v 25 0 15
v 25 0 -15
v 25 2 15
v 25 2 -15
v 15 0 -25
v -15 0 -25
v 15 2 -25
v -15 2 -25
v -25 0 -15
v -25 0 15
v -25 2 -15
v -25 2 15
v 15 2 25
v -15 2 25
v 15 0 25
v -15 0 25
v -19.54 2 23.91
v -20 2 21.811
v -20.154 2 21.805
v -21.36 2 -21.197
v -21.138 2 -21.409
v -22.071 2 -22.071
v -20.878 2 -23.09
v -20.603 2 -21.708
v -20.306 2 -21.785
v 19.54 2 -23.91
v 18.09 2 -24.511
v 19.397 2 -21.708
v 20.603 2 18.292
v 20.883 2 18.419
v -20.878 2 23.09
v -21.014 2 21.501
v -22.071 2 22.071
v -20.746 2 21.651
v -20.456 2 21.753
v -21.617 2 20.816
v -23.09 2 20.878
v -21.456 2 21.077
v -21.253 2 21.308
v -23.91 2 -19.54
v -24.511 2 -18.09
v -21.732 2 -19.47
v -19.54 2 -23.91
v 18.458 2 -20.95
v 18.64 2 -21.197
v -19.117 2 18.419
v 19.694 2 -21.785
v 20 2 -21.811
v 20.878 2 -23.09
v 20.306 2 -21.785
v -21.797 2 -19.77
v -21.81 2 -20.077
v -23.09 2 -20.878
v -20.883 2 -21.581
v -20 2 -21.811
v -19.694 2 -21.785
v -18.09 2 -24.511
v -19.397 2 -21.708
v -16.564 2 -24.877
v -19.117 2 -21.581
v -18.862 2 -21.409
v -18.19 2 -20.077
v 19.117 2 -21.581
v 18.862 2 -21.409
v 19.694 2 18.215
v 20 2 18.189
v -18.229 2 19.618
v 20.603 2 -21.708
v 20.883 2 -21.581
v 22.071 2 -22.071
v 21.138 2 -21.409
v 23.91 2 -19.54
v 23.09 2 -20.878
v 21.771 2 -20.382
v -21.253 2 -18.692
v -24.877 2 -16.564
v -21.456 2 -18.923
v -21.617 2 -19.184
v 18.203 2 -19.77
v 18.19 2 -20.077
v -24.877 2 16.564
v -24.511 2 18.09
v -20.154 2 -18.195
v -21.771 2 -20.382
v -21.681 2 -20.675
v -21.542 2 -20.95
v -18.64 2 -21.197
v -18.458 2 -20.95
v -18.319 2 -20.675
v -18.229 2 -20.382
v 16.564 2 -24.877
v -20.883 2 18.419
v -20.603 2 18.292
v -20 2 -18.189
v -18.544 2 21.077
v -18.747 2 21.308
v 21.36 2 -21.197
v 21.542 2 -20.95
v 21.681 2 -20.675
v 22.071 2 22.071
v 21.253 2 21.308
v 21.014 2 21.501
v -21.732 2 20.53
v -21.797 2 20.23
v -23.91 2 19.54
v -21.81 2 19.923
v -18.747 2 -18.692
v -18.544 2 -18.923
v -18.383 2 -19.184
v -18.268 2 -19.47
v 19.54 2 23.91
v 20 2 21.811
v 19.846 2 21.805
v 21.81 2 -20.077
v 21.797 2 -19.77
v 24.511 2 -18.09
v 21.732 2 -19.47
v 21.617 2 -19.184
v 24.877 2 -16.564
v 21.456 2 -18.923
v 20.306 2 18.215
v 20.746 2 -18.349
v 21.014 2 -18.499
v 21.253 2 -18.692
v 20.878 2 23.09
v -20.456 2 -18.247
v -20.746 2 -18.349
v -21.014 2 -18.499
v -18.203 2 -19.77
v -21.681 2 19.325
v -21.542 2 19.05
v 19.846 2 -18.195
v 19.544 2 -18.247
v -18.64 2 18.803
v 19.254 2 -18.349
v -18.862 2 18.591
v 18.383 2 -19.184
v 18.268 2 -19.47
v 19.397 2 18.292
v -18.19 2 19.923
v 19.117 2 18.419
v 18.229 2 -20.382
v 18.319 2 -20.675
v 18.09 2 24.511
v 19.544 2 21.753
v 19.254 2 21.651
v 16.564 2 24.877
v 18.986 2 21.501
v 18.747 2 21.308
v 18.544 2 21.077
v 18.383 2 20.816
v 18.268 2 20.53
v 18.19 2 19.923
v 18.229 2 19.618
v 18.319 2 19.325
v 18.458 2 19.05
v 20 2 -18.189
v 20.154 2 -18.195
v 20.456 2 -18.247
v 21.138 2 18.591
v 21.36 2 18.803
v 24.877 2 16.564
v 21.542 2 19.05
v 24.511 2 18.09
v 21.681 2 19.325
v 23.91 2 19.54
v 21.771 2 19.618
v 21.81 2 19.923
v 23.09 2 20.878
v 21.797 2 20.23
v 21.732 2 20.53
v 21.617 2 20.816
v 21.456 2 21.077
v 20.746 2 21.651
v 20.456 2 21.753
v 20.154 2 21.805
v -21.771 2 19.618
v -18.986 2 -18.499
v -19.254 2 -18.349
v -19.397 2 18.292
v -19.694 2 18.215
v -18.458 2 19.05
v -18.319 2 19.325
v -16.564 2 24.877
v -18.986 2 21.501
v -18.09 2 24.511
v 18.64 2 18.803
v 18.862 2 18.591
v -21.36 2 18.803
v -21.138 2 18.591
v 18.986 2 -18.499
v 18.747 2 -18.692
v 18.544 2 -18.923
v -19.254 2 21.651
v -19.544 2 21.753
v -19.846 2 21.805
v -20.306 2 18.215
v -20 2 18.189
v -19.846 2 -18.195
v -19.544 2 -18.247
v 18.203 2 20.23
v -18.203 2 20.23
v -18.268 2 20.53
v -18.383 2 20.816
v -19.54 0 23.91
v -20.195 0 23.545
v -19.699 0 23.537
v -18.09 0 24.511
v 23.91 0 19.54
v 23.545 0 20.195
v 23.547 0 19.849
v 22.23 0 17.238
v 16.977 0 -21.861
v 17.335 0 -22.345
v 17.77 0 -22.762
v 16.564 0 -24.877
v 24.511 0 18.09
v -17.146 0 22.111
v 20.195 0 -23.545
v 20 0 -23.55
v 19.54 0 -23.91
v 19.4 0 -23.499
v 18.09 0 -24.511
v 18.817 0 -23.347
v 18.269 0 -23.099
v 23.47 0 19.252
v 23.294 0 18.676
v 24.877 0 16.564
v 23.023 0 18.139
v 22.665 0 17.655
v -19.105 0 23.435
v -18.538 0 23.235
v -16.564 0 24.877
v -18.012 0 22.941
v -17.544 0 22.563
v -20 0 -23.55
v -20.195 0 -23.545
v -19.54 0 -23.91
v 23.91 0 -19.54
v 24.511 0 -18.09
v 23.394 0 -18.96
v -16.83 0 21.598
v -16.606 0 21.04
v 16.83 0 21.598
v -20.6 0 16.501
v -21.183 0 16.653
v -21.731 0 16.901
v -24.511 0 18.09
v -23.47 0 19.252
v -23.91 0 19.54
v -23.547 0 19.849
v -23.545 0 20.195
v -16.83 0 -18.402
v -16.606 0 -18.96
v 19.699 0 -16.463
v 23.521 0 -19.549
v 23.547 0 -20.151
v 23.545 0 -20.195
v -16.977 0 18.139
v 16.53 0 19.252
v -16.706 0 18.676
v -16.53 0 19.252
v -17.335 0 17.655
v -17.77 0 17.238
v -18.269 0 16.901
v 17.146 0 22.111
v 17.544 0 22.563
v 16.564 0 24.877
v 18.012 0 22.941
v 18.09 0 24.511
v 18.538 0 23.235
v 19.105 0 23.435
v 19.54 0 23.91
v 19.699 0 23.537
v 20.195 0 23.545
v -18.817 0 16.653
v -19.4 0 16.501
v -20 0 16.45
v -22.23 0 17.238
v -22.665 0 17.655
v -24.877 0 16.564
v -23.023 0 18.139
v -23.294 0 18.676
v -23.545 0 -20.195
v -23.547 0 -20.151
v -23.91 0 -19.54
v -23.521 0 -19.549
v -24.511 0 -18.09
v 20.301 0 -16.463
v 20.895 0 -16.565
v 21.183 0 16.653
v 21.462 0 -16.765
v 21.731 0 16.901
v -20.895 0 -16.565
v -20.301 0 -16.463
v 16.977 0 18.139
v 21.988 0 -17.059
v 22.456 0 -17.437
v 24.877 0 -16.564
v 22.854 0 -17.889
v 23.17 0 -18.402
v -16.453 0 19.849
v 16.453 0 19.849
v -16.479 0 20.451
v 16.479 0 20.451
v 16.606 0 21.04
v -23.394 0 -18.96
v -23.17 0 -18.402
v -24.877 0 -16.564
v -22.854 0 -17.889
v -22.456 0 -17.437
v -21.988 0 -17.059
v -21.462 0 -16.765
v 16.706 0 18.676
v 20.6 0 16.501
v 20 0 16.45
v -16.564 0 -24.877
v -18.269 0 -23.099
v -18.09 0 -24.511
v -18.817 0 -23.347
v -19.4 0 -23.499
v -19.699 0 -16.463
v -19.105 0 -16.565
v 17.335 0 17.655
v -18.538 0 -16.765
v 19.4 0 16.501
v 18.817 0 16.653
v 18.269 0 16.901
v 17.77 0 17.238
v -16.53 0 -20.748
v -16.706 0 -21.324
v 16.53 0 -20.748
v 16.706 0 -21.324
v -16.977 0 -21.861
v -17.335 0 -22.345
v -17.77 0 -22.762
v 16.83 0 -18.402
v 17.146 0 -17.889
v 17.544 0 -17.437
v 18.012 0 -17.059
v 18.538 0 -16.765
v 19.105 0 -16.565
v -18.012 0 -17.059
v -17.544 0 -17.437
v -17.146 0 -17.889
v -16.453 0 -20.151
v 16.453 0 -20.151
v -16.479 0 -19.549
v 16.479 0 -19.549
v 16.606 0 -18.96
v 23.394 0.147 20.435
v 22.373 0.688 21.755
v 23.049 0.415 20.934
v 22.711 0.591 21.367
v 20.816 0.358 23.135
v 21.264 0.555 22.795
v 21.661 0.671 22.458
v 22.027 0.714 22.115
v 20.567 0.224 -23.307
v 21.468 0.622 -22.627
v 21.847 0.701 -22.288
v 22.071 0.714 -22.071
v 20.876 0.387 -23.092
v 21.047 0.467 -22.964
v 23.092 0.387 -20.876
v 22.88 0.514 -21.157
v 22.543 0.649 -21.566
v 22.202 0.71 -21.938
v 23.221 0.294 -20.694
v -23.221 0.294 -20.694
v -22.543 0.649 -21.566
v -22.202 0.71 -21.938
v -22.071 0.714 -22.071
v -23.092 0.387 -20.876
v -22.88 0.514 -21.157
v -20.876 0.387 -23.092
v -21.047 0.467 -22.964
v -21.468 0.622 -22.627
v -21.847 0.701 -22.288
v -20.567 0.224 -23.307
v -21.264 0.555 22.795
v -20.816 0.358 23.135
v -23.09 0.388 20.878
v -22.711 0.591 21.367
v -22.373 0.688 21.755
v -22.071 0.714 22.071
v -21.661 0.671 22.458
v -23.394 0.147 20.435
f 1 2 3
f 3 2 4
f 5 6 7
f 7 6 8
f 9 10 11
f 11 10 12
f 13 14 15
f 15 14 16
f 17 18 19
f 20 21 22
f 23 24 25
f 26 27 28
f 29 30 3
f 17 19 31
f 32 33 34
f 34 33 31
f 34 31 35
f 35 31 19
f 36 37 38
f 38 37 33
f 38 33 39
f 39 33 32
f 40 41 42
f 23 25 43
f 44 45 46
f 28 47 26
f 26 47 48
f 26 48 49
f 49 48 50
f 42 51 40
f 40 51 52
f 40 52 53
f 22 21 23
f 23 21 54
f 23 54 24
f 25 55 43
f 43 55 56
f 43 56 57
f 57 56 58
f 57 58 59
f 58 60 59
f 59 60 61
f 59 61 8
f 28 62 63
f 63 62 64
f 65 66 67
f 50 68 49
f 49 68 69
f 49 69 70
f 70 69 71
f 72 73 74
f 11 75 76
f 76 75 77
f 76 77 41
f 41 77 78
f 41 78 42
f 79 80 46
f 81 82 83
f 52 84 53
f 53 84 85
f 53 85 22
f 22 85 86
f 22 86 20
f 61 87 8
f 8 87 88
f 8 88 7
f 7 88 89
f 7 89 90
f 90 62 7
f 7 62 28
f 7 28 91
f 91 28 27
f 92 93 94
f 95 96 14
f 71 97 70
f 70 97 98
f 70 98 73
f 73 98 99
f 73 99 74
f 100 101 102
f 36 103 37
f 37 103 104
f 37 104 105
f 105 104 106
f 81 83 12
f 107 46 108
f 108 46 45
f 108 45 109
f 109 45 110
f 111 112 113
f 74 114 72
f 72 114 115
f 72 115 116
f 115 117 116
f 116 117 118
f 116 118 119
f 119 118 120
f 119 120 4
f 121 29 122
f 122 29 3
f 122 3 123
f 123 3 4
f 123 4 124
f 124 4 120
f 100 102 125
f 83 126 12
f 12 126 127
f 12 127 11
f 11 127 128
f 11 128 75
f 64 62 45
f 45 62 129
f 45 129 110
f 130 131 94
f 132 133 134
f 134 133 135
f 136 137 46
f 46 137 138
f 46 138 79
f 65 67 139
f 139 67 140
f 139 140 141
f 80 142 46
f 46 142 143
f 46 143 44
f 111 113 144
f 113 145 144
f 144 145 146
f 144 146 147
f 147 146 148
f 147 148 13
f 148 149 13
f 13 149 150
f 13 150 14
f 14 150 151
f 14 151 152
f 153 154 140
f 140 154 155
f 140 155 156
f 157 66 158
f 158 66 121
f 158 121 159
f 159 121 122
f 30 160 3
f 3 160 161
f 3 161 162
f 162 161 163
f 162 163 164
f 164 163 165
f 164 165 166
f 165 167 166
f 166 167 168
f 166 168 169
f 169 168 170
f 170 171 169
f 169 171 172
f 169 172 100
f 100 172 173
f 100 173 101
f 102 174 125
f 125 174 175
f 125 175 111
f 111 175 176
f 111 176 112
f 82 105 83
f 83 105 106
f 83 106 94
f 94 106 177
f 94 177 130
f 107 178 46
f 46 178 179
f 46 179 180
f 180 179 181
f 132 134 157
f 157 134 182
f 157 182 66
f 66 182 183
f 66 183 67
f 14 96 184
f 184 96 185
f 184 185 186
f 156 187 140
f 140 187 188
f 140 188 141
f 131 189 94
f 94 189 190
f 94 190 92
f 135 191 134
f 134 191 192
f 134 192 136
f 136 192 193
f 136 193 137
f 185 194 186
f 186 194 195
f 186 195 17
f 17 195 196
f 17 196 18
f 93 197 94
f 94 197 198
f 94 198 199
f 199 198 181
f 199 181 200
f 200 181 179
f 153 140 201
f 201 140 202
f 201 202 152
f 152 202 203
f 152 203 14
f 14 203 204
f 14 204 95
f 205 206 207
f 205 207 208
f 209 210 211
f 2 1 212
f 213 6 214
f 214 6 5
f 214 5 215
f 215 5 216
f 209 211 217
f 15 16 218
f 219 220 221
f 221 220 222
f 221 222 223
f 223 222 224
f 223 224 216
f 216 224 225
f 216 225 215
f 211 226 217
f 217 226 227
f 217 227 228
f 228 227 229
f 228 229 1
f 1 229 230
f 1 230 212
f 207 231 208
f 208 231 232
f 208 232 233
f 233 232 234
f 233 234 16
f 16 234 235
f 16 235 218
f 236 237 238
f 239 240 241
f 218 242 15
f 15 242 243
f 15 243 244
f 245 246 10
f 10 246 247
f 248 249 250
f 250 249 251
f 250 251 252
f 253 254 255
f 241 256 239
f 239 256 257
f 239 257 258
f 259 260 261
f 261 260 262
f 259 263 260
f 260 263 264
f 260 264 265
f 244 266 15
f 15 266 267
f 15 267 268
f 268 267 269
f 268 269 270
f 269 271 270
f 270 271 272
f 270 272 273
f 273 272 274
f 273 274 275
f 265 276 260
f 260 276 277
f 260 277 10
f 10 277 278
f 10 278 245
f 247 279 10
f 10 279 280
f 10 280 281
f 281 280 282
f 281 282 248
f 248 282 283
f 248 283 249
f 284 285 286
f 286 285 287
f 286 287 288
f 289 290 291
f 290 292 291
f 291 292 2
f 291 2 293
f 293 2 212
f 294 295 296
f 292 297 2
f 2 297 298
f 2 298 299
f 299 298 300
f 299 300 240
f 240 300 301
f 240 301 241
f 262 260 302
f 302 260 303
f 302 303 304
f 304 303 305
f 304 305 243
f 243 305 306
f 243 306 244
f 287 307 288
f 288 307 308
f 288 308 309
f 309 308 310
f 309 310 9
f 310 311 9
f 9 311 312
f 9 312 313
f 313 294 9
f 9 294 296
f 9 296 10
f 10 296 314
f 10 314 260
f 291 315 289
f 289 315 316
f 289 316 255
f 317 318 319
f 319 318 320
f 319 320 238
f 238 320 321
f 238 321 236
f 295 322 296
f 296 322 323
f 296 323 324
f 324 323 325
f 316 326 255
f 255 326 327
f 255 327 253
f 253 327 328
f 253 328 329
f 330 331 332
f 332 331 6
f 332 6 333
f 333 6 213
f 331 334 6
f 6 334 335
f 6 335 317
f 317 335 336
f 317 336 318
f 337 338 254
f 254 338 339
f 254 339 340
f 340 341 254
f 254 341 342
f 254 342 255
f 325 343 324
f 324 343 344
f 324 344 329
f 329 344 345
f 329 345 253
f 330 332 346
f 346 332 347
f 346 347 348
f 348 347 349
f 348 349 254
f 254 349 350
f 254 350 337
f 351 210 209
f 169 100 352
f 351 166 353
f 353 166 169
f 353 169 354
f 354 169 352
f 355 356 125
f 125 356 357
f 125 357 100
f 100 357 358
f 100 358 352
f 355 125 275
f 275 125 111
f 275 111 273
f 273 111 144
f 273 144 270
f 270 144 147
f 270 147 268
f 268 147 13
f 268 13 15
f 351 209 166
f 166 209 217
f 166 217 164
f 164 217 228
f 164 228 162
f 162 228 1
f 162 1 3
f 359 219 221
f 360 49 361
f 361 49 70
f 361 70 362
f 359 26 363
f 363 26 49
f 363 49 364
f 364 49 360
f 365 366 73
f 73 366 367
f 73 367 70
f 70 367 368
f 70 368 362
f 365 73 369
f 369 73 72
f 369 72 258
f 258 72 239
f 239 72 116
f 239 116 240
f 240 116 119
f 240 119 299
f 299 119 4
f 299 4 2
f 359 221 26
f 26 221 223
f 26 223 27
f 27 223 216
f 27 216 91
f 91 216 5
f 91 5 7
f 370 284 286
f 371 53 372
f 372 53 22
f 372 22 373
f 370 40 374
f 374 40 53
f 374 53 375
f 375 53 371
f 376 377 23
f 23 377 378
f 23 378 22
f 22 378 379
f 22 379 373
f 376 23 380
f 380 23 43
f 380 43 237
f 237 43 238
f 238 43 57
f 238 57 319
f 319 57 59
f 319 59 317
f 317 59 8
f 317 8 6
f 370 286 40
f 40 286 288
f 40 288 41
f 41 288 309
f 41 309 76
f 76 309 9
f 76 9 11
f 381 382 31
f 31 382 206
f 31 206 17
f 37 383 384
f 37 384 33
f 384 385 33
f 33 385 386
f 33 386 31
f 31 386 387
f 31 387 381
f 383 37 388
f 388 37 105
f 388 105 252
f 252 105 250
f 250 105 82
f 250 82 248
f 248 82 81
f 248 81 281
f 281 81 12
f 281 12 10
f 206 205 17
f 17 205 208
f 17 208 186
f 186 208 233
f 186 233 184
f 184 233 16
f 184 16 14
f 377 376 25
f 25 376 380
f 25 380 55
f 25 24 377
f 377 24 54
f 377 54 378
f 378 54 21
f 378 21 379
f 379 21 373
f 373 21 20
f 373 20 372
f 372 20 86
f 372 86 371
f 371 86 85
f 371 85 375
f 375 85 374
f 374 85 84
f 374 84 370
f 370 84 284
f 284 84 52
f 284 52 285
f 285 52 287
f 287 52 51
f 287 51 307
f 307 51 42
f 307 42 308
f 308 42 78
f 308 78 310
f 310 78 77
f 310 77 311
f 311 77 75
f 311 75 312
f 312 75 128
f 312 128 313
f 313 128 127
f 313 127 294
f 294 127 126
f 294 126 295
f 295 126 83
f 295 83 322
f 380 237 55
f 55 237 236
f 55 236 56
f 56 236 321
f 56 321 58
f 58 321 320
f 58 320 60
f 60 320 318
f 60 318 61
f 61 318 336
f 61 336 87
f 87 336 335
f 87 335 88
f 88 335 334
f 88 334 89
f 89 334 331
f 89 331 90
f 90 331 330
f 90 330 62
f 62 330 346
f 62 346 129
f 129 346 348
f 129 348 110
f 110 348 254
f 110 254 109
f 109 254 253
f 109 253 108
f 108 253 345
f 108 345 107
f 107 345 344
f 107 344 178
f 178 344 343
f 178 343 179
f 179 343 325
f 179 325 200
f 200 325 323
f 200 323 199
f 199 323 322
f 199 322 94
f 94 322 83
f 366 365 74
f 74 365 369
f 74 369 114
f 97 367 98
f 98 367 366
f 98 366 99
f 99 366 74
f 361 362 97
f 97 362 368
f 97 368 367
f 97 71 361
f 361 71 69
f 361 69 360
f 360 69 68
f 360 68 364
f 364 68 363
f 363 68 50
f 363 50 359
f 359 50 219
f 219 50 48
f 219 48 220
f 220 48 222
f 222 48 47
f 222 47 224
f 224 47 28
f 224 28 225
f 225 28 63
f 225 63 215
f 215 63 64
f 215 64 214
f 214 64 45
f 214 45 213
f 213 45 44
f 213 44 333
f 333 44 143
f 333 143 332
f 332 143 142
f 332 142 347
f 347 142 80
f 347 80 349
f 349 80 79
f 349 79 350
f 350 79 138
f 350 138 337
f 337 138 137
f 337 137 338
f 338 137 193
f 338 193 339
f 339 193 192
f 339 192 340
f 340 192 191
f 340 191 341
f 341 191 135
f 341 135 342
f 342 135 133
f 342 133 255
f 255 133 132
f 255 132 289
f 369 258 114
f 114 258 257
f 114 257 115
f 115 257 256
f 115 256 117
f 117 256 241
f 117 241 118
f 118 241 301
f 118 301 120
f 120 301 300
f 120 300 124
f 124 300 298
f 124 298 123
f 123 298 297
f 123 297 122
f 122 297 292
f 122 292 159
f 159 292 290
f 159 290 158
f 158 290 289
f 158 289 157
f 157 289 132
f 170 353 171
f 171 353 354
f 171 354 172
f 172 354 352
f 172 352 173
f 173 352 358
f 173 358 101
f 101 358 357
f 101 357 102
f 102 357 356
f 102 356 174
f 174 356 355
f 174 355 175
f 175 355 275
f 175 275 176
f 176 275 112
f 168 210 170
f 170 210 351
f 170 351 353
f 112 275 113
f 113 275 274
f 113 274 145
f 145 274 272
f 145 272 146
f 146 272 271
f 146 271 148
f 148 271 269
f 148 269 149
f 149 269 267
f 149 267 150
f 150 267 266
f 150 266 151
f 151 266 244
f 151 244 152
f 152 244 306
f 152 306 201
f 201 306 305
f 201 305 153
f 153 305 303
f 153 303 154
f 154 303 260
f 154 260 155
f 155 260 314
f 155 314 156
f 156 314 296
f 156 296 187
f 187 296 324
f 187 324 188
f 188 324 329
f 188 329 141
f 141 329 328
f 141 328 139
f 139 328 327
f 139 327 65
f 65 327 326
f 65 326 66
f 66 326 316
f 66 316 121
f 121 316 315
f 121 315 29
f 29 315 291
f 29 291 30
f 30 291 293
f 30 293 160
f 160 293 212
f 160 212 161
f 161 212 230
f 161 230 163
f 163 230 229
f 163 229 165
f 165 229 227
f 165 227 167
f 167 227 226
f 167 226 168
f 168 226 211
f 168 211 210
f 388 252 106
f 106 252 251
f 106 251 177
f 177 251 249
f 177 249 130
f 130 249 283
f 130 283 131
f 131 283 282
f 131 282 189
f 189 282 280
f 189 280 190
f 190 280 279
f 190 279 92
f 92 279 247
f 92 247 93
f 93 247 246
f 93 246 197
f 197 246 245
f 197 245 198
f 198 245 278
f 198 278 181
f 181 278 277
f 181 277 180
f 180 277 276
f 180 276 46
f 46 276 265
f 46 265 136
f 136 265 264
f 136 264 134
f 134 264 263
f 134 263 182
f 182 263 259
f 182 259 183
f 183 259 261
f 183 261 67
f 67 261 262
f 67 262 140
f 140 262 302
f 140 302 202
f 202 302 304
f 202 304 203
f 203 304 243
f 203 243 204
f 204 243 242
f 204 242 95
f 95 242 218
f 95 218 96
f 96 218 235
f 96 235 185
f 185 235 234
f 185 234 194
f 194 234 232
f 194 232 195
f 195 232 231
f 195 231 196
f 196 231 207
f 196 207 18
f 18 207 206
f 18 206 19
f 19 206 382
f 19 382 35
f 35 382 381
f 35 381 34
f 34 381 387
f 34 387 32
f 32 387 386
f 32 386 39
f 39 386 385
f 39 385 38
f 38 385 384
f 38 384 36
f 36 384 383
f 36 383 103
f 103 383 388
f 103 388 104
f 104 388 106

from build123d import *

# Parameters (mm, degrees)
SKETCH1_W           = 50
SKETCH1_H           = 50
BOSS_EXTRUDE1_DEPTH = 2
FILLET2_R           = 10
HOLE1_D             = 3.6
HOLE1_DEPTH         = 10
HOLE1_CSINK_D       = 7.1
HOLE1_CSINK_ANGLE   = 82


with BuildPart() as part:
    # Sketch1 → Boss-Extrude1 (new body)
    with BuildSketch(Plane(origin=(0, 0, 0), x_dir=(1, 0, 0), z_dir=(0, 1, 0))):
        Rectangle(SKETCH1_W, SKETCH1_H)
    extrude(amount=BOSS_EXTRUDE1_DEPTH)

    # Fillet2
    fillet2_edges = [part.edges().sort_by_distance(p)[0] for p in [
        (25, 1, 25),
        (-25, 1, 25),
        (-25, 1, -25),
        (25, 1, -25),
    ]]
    fillet(fillet2_edges, radius=FILLET2_R)

    # Hole1
    with Locations(Plane(origin=(-20, 0, 20), x_dir=(0, 0, -1), z_dir=(0, -1, 0))):
        with Locations((0, 0), (0, 40), (40, 40), (40, 0)):
            CounterSinkHole(HOLE1_D / 2, HOLE1_CSINK_D / 2, depth=HOLE1_DEPTH, counter_sink_angle=HOLE1_CSINK_ANGLE)


solid = part.part
